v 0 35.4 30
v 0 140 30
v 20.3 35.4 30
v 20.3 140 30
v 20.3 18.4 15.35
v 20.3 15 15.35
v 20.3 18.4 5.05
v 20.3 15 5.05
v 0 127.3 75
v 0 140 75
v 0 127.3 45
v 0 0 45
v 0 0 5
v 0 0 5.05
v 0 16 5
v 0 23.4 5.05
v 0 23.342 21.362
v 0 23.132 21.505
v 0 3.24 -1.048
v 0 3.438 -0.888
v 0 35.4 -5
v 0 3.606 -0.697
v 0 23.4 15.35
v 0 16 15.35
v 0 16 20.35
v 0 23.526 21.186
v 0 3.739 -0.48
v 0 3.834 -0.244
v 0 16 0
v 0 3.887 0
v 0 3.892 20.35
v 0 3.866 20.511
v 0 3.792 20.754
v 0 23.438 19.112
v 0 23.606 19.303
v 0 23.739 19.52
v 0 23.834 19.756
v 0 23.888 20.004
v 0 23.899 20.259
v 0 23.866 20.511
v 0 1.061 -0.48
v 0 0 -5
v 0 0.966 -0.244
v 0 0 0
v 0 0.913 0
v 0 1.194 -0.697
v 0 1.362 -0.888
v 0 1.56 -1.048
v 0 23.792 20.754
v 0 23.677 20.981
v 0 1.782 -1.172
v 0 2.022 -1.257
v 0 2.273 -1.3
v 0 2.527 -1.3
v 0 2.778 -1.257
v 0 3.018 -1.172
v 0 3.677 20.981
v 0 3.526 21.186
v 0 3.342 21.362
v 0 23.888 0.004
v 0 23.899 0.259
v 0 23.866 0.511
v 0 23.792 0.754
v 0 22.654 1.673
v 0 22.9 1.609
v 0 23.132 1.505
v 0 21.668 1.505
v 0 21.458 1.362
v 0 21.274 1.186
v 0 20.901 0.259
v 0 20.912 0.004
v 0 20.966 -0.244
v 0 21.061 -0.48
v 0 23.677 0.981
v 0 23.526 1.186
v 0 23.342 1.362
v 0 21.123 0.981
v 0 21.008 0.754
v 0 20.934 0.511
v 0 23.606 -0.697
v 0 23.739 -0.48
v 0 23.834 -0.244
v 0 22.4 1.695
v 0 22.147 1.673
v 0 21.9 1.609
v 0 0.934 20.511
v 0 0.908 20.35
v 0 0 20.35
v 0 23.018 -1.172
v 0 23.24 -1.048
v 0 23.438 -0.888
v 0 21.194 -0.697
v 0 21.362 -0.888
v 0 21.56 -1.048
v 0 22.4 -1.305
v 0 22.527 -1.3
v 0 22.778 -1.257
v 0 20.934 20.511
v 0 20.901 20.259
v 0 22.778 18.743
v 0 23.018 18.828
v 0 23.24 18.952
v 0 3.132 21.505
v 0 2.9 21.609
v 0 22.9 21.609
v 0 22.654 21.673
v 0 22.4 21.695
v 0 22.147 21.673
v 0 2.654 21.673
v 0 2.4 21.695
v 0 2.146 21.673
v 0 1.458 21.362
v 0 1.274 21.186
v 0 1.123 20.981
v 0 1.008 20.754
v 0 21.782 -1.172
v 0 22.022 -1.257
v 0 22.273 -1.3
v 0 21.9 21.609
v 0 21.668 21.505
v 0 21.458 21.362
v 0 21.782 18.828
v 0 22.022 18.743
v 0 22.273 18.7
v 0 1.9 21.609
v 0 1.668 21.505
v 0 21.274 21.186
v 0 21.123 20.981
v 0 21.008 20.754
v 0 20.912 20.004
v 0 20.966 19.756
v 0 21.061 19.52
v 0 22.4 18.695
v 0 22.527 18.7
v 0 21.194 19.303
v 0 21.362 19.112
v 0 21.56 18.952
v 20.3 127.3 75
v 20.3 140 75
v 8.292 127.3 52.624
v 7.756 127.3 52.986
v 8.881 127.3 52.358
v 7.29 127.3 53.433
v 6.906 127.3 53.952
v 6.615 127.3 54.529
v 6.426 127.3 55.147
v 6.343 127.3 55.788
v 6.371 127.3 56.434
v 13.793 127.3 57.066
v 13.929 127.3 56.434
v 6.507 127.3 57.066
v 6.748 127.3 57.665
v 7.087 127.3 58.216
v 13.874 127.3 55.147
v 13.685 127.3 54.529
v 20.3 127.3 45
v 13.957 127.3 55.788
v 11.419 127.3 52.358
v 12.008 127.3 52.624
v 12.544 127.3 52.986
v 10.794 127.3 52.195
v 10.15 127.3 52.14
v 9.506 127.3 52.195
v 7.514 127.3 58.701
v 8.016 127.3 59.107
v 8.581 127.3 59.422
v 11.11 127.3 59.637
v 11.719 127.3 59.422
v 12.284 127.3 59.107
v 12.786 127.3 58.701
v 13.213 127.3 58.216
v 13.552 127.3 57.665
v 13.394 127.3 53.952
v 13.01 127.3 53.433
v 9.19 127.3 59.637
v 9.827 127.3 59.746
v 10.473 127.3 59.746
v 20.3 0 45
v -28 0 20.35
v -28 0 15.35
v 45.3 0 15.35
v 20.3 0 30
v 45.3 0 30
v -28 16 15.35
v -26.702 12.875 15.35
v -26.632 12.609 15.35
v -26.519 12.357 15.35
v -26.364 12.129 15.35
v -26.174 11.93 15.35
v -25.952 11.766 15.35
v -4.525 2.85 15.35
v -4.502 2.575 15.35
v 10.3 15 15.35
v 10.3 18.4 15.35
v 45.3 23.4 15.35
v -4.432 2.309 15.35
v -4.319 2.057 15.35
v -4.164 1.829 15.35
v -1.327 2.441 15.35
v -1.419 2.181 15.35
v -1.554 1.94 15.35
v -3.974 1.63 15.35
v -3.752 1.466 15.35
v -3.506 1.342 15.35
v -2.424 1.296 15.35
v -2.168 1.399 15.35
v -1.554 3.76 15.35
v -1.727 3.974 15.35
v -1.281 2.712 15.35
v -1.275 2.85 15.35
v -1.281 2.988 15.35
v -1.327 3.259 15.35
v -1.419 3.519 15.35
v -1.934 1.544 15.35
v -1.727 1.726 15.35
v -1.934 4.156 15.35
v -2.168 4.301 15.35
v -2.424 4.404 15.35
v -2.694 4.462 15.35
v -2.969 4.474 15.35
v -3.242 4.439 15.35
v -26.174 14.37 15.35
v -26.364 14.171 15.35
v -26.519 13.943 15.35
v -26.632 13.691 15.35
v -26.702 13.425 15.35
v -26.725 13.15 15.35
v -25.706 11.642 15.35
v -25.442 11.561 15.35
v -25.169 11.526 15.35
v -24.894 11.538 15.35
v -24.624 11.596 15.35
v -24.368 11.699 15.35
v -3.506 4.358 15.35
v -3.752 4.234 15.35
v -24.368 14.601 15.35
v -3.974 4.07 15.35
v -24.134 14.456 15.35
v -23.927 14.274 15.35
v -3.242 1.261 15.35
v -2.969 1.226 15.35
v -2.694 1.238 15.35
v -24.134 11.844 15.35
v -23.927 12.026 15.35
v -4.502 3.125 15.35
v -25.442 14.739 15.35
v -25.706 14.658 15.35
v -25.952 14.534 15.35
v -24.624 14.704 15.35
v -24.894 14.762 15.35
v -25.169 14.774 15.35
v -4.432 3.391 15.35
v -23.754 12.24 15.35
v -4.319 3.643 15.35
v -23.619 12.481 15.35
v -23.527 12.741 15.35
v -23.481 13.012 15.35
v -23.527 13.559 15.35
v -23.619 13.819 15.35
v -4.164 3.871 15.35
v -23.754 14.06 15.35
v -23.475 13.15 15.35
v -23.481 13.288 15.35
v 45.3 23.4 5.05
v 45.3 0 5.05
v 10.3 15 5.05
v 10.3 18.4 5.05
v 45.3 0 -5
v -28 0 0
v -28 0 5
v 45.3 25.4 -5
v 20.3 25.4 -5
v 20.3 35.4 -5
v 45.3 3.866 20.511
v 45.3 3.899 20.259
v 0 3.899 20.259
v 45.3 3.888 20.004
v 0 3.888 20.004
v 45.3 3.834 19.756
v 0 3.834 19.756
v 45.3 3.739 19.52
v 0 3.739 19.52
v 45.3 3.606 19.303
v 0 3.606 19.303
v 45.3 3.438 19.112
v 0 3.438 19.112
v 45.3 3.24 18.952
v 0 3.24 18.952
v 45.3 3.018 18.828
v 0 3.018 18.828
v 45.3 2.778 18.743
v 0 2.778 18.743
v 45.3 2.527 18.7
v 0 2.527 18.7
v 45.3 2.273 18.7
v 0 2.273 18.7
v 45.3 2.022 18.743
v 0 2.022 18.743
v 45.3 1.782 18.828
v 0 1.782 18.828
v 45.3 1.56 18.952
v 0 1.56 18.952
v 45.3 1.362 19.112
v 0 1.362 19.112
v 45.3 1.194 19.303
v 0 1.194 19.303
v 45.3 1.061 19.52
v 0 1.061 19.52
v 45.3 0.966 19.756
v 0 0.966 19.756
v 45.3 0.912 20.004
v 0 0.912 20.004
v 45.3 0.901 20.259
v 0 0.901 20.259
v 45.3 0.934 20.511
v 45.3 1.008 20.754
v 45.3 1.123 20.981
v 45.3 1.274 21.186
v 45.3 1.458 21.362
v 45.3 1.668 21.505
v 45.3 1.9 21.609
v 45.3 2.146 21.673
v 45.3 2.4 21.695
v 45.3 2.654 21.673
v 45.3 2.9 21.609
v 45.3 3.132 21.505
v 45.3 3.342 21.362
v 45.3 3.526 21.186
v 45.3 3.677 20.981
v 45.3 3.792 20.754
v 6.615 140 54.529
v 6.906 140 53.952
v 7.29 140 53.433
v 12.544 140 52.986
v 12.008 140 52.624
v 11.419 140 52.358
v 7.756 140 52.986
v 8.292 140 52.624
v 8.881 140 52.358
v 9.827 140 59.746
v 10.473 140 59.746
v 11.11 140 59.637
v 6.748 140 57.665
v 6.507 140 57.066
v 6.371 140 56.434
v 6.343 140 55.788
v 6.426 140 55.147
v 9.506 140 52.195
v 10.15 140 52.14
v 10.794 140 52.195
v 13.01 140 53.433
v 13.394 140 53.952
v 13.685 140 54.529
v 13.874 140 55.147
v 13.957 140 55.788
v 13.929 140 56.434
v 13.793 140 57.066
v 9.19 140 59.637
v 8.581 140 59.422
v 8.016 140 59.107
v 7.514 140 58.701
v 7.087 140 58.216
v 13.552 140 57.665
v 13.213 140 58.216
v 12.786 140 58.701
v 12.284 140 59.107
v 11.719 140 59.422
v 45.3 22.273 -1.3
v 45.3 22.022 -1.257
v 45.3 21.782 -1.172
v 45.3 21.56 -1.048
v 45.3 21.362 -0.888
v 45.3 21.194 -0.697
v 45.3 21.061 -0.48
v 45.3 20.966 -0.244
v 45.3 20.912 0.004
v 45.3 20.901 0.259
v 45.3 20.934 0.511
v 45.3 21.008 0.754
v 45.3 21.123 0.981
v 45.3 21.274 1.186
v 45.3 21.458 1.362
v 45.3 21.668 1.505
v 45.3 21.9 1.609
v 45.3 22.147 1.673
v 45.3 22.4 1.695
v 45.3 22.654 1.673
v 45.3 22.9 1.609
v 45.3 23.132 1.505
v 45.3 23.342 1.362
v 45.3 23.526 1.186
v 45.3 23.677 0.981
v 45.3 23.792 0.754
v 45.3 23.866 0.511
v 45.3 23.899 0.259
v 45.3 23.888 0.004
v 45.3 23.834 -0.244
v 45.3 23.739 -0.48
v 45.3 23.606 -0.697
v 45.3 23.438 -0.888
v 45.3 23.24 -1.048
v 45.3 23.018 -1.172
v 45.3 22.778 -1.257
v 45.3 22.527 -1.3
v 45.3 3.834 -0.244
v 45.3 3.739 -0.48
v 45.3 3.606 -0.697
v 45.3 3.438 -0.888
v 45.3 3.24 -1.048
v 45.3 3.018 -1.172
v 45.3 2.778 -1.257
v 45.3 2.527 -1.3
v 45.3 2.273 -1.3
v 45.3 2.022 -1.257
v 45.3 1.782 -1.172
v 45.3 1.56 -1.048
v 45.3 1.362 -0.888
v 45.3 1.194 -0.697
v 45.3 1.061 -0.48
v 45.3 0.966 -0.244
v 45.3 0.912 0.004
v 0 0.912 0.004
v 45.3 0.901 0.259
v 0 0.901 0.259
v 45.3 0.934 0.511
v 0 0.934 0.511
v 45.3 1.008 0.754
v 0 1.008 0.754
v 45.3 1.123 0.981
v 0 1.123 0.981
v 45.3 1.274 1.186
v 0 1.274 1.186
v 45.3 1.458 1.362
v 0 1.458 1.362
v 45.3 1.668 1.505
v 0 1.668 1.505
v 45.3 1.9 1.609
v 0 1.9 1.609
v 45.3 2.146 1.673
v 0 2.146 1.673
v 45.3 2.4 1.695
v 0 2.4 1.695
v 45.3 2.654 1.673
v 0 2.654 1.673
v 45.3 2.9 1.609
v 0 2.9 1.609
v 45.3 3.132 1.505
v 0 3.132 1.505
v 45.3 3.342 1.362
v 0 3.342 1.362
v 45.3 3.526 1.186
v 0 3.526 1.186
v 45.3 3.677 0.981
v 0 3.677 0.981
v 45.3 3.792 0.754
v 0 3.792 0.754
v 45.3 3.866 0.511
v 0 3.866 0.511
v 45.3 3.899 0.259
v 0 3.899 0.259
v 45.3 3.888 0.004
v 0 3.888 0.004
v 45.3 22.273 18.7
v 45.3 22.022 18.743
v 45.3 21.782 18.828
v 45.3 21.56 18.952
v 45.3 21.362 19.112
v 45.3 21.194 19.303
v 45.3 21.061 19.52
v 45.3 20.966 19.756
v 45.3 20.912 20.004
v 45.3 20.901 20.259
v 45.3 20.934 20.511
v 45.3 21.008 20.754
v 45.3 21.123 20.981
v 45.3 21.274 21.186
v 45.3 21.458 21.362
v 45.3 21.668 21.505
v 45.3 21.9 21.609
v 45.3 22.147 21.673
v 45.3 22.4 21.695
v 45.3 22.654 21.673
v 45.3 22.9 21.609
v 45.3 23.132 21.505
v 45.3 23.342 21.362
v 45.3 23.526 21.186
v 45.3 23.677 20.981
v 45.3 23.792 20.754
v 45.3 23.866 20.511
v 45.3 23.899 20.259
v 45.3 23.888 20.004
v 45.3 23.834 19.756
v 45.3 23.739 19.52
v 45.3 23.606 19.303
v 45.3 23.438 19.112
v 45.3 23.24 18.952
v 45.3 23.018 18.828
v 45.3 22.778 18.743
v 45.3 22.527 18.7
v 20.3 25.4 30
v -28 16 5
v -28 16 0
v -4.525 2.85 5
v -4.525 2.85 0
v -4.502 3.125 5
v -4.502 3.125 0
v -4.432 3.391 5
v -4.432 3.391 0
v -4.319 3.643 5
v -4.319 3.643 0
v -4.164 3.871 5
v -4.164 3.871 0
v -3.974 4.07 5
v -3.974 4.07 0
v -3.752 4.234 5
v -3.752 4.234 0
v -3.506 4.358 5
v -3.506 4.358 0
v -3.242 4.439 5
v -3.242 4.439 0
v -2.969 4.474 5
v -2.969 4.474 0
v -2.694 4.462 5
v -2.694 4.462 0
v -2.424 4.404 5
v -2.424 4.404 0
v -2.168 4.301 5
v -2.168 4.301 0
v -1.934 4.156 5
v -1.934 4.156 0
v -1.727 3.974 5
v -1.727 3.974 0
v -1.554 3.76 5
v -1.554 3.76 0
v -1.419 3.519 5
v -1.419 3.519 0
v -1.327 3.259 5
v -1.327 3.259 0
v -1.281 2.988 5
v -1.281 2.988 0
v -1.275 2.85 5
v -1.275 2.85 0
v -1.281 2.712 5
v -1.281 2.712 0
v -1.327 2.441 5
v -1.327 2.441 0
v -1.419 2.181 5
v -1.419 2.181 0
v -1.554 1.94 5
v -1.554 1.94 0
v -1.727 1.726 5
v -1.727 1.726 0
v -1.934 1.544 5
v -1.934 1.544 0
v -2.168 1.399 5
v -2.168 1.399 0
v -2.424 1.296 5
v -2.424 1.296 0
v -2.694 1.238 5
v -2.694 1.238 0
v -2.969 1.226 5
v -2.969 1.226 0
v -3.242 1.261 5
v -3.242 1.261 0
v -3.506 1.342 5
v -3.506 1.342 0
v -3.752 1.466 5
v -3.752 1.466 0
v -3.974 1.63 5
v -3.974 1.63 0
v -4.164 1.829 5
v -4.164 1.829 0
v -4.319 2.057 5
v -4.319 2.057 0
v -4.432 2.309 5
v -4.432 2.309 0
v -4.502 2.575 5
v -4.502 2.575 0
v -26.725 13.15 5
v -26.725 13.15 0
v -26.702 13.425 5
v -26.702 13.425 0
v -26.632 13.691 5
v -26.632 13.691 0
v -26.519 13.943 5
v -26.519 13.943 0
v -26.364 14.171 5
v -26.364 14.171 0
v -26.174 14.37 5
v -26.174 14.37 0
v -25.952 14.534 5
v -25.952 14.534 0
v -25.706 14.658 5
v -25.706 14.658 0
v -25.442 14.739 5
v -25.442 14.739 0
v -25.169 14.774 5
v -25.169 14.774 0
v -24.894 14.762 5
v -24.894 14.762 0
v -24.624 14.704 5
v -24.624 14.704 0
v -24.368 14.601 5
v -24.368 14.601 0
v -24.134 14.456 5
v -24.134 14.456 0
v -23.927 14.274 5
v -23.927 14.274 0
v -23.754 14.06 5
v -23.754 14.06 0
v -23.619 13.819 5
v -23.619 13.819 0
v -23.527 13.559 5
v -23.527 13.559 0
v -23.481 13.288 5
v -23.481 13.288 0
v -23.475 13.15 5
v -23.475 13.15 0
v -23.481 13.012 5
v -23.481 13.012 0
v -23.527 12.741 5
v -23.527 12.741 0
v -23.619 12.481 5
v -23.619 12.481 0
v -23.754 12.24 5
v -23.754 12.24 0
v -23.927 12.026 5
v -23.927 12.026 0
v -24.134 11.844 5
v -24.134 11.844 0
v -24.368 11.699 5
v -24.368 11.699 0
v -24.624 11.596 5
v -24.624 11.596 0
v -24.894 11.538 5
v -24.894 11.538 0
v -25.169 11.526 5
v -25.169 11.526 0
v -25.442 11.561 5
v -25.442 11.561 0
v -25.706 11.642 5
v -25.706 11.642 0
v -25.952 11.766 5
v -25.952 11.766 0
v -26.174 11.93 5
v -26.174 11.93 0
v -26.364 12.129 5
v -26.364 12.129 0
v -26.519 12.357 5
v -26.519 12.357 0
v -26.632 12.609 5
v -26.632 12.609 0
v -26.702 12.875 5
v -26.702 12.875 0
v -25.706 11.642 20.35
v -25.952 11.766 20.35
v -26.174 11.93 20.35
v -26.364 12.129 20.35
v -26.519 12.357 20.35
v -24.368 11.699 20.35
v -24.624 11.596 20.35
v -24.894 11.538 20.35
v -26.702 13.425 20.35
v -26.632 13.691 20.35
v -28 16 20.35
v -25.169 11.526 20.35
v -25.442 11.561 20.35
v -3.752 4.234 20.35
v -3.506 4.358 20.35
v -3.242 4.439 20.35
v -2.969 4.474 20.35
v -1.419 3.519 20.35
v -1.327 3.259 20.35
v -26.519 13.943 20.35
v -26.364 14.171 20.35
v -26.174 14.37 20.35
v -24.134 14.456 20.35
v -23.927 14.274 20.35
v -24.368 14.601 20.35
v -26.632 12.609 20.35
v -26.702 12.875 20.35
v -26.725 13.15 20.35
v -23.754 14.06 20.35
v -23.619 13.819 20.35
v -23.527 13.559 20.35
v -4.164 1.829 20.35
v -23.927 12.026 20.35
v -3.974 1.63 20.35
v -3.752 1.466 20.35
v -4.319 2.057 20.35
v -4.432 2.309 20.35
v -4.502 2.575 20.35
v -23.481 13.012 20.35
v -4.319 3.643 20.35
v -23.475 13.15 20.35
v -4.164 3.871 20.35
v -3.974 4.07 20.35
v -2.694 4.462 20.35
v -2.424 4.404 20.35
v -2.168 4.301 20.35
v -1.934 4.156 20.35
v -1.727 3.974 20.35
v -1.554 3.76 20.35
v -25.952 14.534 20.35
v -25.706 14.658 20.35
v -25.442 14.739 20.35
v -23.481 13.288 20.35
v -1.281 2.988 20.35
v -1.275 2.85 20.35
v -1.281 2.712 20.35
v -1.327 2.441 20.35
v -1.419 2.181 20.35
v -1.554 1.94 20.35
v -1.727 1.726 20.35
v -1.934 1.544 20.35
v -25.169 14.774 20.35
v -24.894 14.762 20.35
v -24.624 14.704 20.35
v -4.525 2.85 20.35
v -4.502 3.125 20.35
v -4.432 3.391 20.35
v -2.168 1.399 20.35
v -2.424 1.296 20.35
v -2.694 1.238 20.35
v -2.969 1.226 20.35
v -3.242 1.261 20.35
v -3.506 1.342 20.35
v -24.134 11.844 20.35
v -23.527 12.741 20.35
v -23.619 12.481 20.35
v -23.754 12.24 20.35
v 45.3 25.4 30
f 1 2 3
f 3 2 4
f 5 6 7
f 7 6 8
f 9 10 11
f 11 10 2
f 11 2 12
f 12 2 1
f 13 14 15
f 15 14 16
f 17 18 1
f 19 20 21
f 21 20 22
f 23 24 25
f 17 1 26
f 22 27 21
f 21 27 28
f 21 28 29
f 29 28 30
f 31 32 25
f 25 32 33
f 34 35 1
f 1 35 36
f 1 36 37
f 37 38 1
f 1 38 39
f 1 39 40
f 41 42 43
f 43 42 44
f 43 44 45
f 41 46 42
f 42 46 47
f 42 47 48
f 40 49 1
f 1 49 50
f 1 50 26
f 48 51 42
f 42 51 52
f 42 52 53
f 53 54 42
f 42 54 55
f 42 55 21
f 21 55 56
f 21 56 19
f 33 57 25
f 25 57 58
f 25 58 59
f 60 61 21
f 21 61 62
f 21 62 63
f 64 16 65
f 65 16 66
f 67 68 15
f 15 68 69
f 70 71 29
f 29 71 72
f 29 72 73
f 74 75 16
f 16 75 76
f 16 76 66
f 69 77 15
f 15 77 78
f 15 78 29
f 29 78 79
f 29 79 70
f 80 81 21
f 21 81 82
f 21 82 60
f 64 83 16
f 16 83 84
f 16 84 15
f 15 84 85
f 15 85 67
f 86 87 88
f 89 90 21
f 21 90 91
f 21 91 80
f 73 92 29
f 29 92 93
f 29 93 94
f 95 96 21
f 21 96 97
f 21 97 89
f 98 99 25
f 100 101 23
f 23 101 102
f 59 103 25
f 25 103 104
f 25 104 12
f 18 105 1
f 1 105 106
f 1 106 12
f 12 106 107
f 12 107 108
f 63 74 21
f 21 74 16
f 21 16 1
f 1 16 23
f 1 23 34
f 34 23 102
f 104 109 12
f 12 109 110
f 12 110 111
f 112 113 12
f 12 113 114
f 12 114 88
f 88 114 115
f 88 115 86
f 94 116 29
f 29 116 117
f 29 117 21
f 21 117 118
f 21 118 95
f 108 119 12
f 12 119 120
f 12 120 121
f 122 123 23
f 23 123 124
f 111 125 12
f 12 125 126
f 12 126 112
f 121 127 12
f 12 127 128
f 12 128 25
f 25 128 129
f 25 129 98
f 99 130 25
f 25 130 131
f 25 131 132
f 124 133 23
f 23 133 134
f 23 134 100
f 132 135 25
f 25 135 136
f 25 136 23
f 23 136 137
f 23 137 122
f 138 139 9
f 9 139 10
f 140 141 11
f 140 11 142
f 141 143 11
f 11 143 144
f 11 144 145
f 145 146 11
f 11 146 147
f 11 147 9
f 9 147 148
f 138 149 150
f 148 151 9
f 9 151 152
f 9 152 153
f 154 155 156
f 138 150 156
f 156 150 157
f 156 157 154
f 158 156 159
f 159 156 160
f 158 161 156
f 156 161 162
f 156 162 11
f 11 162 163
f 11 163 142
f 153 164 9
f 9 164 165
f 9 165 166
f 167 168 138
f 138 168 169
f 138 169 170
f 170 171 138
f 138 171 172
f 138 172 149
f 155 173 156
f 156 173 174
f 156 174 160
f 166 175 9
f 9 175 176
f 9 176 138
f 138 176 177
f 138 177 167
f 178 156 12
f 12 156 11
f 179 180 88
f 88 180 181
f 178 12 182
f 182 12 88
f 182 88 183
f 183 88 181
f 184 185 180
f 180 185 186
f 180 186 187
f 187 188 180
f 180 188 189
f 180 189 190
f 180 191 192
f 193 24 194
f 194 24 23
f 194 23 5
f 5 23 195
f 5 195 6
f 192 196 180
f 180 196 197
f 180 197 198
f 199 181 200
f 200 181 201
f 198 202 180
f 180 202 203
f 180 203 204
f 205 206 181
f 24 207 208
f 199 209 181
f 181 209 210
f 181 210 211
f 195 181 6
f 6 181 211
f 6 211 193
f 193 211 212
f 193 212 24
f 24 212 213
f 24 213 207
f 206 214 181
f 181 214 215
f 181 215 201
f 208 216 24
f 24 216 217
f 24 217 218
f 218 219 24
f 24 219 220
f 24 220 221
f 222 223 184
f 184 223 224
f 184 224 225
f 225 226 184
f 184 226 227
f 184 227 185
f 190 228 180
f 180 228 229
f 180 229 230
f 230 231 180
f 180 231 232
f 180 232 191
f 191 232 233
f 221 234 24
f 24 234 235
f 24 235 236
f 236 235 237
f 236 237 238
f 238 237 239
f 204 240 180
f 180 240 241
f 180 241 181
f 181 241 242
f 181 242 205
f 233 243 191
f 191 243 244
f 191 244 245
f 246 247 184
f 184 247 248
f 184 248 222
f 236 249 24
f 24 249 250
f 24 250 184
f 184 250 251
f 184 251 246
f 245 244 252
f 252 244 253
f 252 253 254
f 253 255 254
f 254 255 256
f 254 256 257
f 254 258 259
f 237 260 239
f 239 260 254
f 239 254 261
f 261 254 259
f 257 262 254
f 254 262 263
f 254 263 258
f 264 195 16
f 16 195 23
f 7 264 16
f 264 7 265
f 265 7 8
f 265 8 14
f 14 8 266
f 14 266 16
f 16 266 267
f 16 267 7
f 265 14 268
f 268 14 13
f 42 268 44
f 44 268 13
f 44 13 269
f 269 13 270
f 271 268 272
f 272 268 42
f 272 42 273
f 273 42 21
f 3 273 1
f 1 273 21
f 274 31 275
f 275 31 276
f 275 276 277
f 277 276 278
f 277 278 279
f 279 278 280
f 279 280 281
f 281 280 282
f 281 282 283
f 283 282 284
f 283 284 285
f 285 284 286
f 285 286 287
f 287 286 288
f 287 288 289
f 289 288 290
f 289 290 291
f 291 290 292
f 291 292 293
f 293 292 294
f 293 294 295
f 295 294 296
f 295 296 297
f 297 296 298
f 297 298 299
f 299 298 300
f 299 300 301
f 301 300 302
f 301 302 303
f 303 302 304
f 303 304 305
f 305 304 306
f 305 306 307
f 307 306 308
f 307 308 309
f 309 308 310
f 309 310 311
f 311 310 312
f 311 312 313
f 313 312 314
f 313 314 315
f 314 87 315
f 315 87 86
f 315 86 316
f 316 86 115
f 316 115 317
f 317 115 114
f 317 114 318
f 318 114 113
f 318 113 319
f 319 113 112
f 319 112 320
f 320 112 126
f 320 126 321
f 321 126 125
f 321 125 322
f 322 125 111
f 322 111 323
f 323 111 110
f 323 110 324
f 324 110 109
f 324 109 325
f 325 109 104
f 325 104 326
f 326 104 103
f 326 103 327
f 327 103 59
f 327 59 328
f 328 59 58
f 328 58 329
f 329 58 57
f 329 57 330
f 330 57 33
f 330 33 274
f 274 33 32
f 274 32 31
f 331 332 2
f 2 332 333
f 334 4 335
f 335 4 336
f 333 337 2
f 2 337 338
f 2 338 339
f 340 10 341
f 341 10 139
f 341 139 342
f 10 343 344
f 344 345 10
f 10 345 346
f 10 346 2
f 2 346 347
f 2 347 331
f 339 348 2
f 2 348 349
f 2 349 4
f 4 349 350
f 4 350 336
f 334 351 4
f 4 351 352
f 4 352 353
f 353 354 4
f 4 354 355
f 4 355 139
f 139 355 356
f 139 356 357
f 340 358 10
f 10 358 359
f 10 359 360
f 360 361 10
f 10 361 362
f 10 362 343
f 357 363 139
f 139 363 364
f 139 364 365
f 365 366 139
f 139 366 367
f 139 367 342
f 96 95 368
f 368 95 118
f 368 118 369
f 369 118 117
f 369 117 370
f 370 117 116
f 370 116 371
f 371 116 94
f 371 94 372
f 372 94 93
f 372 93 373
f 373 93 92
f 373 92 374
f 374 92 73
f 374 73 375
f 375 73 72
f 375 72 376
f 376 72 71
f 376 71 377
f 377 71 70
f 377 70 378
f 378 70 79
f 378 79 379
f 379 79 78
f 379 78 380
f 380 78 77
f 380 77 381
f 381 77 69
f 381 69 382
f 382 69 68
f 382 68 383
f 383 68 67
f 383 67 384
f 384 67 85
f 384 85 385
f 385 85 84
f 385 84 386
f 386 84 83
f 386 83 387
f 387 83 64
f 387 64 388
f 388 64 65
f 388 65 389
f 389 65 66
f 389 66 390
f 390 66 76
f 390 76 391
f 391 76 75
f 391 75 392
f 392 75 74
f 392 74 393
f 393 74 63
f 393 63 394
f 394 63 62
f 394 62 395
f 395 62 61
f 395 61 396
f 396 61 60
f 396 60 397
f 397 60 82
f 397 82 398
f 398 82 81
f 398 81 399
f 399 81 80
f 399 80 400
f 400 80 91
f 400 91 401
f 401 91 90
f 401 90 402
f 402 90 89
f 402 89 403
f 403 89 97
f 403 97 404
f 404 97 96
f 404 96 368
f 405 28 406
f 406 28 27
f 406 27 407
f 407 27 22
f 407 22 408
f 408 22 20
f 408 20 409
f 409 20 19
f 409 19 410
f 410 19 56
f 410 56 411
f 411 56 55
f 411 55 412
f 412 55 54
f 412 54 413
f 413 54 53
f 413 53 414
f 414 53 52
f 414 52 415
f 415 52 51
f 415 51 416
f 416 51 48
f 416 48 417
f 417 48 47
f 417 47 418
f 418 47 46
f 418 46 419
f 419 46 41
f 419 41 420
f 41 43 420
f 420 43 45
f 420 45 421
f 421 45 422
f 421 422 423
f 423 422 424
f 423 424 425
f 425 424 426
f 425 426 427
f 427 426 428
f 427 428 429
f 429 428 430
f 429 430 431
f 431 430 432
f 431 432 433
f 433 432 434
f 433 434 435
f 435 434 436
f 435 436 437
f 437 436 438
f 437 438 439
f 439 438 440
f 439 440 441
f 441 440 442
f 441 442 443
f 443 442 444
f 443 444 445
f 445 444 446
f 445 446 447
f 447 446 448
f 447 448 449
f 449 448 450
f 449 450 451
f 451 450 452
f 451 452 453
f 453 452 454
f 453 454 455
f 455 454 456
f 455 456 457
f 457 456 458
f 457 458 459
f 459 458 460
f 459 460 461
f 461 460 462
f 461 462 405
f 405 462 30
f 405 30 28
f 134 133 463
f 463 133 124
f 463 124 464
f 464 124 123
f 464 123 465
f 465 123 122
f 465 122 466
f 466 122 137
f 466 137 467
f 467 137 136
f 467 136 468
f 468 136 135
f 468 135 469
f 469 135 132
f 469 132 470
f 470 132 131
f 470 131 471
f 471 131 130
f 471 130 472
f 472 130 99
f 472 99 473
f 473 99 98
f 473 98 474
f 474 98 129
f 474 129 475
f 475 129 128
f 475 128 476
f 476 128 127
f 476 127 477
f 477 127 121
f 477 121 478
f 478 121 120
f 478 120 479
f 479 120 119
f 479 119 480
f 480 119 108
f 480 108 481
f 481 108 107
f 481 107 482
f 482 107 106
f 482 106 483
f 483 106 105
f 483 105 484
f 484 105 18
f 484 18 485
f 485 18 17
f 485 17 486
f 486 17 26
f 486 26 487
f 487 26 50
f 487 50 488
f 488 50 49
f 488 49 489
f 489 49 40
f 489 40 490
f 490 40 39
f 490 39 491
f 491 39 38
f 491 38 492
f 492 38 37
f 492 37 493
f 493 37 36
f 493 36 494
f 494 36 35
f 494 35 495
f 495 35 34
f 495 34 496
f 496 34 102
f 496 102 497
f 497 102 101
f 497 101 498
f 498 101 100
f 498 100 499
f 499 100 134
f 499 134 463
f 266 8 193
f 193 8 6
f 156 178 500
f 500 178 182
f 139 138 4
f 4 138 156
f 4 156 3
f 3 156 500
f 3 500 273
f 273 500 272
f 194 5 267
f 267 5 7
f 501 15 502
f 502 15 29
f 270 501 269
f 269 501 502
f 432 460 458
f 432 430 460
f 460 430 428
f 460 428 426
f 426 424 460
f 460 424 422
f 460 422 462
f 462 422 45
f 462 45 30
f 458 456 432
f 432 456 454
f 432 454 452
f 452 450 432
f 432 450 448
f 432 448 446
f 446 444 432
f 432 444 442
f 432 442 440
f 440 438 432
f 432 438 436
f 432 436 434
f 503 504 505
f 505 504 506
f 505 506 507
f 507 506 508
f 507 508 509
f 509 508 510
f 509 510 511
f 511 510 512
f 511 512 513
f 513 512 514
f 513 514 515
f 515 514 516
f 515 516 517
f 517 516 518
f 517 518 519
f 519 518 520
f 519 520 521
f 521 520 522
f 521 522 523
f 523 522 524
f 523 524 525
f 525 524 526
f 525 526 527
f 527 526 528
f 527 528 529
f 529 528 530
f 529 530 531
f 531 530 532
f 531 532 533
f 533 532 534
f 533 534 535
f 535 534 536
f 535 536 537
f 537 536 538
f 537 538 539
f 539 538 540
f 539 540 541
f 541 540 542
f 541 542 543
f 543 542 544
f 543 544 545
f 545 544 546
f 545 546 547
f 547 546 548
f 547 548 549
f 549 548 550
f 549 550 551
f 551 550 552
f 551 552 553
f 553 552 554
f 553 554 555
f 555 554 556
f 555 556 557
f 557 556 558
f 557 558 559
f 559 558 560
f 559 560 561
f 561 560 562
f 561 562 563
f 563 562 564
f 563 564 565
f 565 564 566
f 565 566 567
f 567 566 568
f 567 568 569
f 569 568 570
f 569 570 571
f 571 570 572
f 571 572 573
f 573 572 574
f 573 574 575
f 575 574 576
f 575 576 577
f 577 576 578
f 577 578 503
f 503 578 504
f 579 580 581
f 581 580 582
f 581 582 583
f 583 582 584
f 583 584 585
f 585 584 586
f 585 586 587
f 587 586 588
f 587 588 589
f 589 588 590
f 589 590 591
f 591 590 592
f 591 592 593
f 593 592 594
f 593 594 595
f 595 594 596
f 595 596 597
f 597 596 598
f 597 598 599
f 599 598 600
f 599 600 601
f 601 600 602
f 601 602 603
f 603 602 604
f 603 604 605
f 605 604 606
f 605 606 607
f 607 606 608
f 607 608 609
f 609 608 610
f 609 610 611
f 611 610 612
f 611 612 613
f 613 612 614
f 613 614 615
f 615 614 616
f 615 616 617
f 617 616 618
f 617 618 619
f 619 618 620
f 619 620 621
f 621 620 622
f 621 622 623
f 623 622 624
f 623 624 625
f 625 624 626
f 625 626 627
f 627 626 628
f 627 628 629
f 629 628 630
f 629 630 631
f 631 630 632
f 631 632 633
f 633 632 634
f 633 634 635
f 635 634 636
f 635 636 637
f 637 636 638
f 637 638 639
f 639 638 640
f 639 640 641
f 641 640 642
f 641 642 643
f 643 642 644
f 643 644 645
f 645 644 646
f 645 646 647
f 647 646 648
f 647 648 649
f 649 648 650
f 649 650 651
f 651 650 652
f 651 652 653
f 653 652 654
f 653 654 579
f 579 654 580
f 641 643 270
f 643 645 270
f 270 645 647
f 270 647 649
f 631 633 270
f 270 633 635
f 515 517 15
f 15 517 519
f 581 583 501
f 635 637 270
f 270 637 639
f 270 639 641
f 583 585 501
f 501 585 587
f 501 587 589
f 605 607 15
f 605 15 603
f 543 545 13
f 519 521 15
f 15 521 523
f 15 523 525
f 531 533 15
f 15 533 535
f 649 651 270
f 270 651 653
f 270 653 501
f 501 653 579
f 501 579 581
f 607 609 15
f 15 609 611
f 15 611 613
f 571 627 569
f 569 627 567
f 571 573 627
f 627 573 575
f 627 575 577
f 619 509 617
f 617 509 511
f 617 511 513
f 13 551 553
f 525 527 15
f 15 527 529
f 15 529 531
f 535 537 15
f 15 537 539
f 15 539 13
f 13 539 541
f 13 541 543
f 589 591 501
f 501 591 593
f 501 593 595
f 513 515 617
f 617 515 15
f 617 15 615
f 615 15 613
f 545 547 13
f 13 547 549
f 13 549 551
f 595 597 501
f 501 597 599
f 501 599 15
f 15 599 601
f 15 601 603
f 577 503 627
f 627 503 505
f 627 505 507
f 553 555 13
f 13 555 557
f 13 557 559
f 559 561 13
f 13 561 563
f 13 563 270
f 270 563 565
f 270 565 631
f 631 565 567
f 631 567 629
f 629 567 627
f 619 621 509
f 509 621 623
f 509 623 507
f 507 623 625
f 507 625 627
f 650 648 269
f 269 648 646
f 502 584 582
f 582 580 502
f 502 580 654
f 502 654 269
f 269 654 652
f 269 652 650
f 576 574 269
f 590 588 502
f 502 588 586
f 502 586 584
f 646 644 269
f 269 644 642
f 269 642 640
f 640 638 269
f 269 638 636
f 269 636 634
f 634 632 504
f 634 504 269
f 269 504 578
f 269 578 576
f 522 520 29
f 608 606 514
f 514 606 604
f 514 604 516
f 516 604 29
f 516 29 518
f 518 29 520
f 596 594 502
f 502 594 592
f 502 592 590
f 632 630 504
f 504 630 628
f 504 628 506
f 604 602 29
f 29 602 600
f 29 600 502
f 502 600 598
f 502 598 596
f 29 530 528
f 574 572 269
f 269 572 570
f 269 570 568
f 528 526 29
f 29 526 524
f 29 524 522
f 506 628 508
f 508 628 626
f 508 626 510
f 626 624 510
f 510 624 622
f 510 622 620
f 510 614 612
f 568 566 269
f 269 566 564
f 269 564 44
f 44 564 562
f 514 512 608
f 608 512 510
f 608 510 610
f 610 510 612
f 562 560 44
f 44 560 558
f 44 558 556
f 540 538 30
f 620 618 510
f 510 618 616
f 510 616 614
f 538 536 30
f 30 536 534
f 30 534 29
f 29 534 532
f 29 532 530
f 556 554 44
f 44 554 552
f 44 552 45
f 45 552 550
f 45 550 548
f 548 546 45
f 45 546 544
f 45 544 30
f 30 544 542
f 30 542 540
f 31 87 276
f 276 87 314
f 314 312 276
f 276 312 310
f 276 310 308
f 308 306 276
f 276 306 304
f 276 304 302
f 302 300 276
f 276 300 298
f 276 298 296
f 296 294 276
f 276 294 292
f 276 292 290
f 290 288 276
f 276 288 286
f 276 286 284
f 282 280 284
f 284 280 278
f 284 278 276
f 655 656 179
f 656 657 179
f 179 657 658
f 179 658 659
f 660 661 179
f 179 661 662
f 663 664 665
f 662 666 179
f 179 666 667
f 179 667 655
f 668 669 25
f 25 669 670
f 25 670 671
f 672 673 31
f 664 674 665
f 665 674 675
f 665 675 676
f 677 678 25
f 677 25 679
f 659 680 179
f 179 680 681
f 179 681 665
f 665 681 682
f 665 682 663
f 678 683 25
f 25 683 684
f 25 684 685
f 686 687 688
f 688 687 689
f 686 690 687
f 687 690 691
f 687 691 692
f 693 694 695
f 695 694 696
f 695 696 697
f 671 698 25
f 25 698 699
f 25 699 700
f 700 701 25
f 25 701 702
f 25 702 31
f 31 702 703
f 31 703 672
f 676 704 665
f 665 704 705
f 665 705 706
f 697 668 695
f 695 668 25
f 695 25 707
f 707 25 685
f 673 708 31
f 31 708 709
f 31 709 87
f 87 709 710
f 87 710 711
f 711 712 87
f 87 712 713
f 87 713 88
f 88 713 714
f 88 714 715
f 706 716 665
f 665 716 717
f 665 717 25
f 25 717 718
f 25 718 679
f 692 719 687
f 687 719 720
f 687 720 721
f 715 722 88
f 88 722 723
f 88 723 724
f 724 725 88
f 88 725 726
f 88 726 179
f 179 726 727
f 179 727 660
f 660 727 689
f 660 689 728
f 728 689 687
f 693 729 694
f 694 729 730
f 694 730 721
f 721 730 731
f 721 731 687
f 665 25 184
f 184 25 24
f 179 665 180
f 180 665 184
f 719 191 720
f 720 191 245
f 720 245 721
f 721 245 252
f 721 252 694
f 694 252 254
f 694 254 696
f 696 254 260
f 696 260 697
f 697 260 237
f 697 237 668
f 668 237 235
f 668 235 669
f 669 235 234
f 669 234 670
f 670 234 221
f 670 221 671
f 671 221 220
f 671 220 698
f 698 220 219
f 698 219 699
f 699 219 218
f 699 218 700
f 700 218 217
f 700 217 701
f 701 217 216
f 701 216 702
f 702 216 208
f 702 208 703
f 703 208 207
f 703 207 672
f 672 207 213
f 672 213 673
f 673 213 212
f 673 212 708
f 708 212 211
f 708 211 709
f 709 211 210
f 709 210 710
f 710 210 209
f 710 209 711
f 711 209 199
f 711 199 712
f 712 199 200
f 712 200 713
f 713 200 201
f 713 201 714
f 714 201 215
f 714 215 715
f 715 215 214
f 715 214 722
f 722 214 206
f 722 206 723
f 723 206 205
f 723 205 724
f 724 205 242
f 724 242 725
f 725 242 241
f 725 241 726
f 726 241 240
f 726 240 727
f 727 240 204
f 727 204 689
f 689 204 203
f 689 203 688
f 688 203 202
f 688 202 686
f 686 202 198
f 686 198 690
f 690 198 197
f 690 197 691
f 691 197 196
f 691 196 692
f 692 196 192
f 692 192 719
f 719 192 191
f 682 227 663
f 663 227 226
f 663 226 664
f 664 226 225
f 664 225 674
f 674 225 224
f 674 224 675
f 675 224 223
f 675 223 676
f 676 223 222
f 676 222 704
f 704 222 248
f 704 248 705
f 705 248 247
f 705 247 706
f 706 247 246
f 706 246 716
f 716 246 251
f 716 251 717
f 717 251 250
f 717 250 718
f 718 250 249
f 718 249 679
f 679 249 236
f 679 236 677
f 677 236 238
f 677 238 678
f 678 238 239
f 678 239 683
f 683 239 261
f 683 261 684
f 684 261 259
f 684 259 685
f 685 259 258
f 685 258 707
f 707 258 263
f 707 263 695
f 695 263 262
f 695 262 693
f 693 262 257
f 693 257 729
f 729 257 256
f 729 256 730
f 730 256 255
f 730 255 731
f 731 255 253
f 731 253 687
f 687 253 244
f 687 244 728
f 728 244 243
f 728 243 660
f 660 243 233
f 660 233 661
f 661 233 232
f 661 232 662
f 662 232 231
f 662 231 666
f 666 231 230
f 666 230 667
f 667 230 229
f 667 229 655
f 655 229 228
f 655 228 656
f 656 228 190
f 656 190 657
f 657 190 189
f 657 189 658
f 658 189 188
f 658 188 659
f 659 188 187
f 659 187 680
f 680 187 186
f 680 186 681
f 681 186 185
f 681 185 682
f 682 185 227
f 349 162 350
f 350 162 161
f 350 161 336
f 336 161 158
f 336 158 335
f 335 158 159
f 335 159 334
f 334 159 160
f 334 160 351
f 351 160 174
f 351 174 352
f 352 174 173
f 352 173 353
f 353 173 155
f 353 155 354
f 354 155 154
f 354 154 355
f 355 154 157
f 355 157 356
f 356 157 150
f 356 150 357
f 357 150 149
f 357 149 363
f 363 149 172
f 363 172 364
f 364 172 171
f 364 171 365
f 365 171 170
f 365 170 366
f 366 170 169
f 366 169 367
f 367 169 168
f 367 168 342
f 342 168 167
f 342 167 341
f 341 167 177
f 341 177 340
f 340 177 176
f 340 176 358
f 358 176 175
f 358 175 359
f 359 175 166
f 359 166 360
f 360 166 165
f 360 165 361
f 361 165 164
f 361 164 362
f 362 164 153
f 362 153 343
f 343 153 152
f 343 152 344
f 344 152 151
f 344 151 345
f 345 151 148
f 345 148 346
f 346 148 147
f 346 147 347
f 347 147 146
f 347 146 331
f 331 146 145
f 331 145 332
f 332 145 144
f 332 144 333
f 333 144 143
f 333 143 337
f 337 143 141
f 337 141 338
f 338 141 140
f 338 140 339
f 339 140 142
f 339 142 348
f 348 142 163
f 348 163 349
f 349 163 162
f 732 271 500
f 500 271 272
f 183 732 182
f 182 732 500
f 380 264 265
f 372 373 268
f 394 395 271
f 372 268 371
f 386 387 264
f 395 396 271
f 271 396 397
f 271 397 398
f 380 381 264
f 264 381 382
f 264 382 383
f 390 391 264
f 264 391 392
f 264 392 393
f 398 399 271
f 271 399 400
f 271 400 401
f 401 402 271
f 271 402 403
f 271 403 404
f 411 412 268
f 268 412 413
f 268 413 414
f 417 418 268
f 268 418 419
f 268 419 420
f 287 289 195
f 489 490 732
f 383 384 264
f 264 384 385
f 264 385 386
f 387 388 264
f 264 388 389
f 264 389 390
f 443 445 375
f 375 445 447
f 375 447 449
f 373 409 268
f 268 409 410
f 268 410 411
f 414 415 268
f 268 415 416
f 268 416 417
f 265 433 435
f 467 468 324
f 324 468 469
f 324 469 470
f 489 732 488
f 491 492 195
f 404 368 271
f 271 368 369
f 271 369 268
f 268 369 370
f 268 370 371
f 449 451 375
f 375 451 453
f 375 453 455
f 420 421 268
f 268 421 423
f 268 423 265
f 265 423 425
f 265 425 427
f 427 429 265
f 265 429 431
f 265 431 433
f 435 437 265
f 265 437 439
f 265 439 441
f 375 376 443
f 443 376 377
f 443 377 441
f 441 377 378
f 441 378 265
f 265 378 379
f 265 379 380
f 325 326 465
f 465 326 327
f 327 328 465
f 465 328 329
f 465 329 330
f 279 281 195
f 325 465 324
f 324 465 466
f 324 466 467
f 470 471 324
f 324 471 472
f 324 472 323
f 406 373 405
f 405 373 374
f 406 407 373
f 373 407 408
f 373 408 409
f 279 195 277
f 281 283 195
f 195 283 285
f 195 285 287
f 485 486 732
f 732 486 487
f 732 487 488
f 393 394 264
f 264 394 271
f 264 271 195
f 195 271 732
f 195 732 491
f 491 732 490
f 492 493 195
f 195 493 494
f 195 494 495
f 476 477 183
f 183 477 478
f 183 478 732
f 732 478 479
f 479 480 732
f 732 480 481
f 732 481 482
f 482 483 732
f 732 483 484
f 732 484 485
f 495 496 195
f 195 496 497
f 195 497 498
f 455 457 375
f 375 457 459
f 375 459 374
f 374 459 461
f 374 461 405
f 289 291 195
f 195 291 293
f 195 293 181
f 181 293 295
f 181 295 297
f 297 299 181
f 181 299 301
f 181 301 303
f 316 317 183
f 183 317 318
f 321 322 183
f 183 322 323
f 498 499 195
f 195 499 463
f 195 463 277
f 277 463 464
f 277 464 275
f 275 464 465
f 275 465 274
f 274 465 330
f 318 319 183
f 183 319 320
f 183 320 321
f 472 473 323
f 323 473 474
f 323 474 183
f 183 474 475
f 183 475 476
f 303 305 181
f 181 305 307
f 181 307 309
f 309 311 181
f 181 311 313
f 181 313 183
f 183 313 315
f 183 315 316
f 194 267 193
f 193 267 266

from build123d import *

# Parameters (mm, degrees)
SKETCH1_R           = 1.5
BOSS_EXTRUDE1_DEPTH = 5
BOSS_EXTRUDE2_START = 5
SKETCH1_4_R         = 1.5
BOSS_EXTRUDE2_DEPTH = 10.3
BOSS_EXTRUDE3_START = 15.3
SKETCH1_5_W         = 10.3
SKETCH1_5_H         = 5
SKETCH1_5_R         = 1.5
BOSS_EXTRUDE3_DEPTH = 5
SKETCH2_W           = 28
SKETCH2_H           = 16
SKETCH2_R           = 1.625
BOSS_EXTRUDE4_DEPTH = 5
BOSS_EXTRUDE5_START = 15.35
SKETCH2_2_W         = 28
SKETCH2_2_H         = 16
SKETCH2_2_R         = 1.625
BOSS_EXTRUDE5_DEPTH = 5
CUT_EXTRUDE1_START  = 127.3
SKETCH3_R           = 3.81
CUT_EXTRUDE1_DEPTH  = 12.7
BOSS_EXTRUDE6_START = 20.3
SKETCH1_6_R         = 1.5
BOSS_EXTRUDE6_DEPTH = 25
BOSS_EXTRUDE7_START = 10.3
SKETCH1_7_W         = 10.3
SKETCH1_7_H         = 3.4
BOSS_EXTRUDE7_DEPTH = 5
BOSS_EXTRUDE8_DEPTH = 20


with BuildPart() as part:
    # Sketch1 → Boss-Extrude1 (new body)
    with BuildSketch(Plane(origin=(0, 0, 0), x_dir=(0, 0, -1), z_dir=(1, 0, 0))):
        Polygon((-15.35, 0), (-15.35, 23.4), (-5.05, 23.4), (-5.05, 0), (5, 0), (5, 35.4), (-30, 35.4), (-30, 140), (-75, 140), (-75, 127.3), (-45, 127.3), (-45, 0), align=None)
        with Locations((-0.195, 2.4)):
            Circle(SKETCH1_R, mode=Mode.SUBTRACT)
        with Locations((-0.195, 22.4)):
            Circle(SKETCH1_R, mode=Mode.SUBTRACT)
        with Locations((-20.195, 22.4)):
            Circle(SKETCH1_R, mode=Mode.SUBTRACT)
        with Locations((-20.195, 2.4)):
            Circle(SKETCH1_R, mode=Mode.SUBTRACT)
    extrude(amount=BOSS_EXTRUDE1_DEPTH)

    # Sketch1<4> → Boss-Extrude2 (add)
    with BuildSketch(Plane(origin=(0, 0, 0), x_dir=(0, 0, -1), z_dir=(1, 0, 0)).offset(BOSS_EXTRUDE2_START)):
        Polygon((-5.05, 0), (5, 0), (5, 25.4), (-30, 25.4), (-30, 140), (-75, 140), (-75, 127.3), (-45, 127.3), (-45, 0), (-15.35, 0), (-15.35, 23.4), (-5.05, 23.4), align=None)
        with Locations((-0.195, 22.4)):
            Circle(SKETCH1_4_R, mode=Mode.SUBTRACT)
        with Locations((-0.195, 2.4)):
            Circle(SKETCH1_4_R, mode=Mode.SUBTRACT)
        with Locations((-20.195, 2.4)):
            Circle(SKETCH1_4_R, mode=Mode.SUBTRACT)
        with Locations((-20.195, 22.4)):
            Circle(SKETCH1_4_R, mode=Mode.SUBTRACT)
    extrude(amount=BOSS_EXTRUDE2_DEPTH)

    # Sketch1<5> → Boss-Extrude3 (add)
    with BuildSketch(Plane(origin=(0, 0, 0), x_dir=(0, 0, -1), z_dir=(1, 0, 0)).offset(BOSS_EXTRUDE3_START)):
        Polygon((-15.35, 0), (-15.35, 15), (-5.05, 15), (-5.05, 0), (5, 0), (5, 35.4), (-30, 35.4), (-30, 140), (-75, 140), (-75, 127.3), (-45, 127.3), (-45, 0), align=None)
        with Locations((-10.2, 20.9)):
            Rectangle(SKETCH1_5_W, SKETCH1_5_H, mode=Mode.SUBTRACT)
        with Locations(Location((-0.195, 2.4, 0), (0, 0, 180))):
            Circle(SKETCH1_5_R, mode=Mode.SUBTRACT)
        with Locations(Location((-0.195, 22.4, 0), (0, 0, 180))):
            Circle(SKETCH1_5_R, mode=Mode.SUBTRACT)
        with Locations(Location((-20.195, 22.4, 0), (0, 0, 180))):
            Circle(SKETCH1_5_R, mode=Mode.SUBTRACT)
        with Locations(Location((-20.195, 2.4, 0), (0, 0, 180))):
            Circle(SKETCH1_5_R, mode=Mode.SUBTRACT)
    extrude(amount=BOSS_EXTRUDE3_DEPTH)

    # Sketch2 → Boss-Extrude4 (add)
    with BuildSketch(Plane.XY):
        with Locations((-14, 8)):
            Rectangle(SKETCH2_W, SKETCH2_H)
        with Locations((-2.9, 2.85)):
            Circle(SKETCH2_R, mode=Mode.SUBTRACT)
        with Locations((-25.1, 13.15)):
            Circle(SKETCH2_R, mode=Mode.SUBTRACT)
    extrude(amount=BOSS_EXTRUDE4_DEPTH)

    # Sketch2<2> → Boss-Extrude5 (add)
    with BuildSketch(Plane.XY.offset(BOSS_EXTRUDE5_START)):
        with Locations((-14, 8)):
            Rectangle(SKETCH2_2_W, SKETCH2_2_H)
        with Locations((-2.9, 2.85)):
            Circle(SKETCH2_2_R, mode=Mode.SUBTRACT)
        with Locations((-25.1, 13.15)):
            Circle(SKETCH2_2_R, mode=Mode.SUBTRACT)
    extrude(amount=BOSS_EXTRUDE5_DEPTH)

    # Sketch3 → Cut-Extrude1 (cut)
    with BuildSketch(Plane(origin=(0, 0, 0), x_dir=(1, 0, 0), z_dir=(0, 1, 0)).offset(CUT_EXTRUDE1_START)):
        with Locations(Location((10.15, -55.95, 0), (0, 0, 90))):
            Circle(SKETCH3_R)
    extrude(amount=CUT_EXTRUDE1_DEPTH, mode=Mode.SUBTRACT)

    # Sketch1<6> → Boss-Extrude6 (add)
    with BuildSketch(Plane(origin=(0, 0, 0), x_dir=(0, 0, -1), z_dir=(1, 0, 0)).offset(BOSS_EXTRUDE6_START)):
        Polygon((-5.05, 0), (5, 0), (5, 25.4), (-30, 25.4), (-30, 0), (-15.35, 0), (-15.35, 23.4), (-5.05, 23.4), align=None)
        with Locations(Location((-0.195, 22.4, 0), (0, 0, 180))):
            Circle(SKETCH1_6_R, mode=Mode.SUBTRACT)
        with Locations(Location((-0.195, 2.4, 0), (0, 0, 180))):
            Circle(SKETCH1_6_R, mode=Mode.SUBTRACT)
        with Locations(Location((-20.195, 2.4, 0), (0, 0, 180))):
            Circle(SKETCH1_6_R, mode=Mode.SUBTRACT)
        with Locations(Location((-20.195, 22.4, 0), (0, 0, 180))):
            Circle(SKETCH1_6_R, mode=Mode.SUBTRACT)
    extrude(amount=BOSS_EXTRUDE6_DEPTH)

    # Sketch1<7> → Boss-Extrude7 (add)
    with BuildSketch(Plane(origin=(0, 0, 0), x_dir=(0, 0, -1), z_dir=(1, 0, 0)).offset(BOSS_EXTRUDE7_START)):
        with Locations((-10.2, 16.7)):
            Rectangle(SKETCH1_7_W, SKETCH1_7_H)
    extrude(amount=BOSS_EXTRUDE7_DEPTH)

    # Sketch1<9> → Boss-Extrude8 (add)
    with BuildSketch(Plane(origin=(0, 0, 0), x_dir=(0, 0, -1), z_dir=(1, 0, 0))):
        Polygon((-30, 25.4), (0, 25.4), (5, 25.4), (5, 35.4), (-30, 35.4), align=None)
    extrude(amount=BOSS_EXTRUDE8_DEPTH)


solid = part.part
